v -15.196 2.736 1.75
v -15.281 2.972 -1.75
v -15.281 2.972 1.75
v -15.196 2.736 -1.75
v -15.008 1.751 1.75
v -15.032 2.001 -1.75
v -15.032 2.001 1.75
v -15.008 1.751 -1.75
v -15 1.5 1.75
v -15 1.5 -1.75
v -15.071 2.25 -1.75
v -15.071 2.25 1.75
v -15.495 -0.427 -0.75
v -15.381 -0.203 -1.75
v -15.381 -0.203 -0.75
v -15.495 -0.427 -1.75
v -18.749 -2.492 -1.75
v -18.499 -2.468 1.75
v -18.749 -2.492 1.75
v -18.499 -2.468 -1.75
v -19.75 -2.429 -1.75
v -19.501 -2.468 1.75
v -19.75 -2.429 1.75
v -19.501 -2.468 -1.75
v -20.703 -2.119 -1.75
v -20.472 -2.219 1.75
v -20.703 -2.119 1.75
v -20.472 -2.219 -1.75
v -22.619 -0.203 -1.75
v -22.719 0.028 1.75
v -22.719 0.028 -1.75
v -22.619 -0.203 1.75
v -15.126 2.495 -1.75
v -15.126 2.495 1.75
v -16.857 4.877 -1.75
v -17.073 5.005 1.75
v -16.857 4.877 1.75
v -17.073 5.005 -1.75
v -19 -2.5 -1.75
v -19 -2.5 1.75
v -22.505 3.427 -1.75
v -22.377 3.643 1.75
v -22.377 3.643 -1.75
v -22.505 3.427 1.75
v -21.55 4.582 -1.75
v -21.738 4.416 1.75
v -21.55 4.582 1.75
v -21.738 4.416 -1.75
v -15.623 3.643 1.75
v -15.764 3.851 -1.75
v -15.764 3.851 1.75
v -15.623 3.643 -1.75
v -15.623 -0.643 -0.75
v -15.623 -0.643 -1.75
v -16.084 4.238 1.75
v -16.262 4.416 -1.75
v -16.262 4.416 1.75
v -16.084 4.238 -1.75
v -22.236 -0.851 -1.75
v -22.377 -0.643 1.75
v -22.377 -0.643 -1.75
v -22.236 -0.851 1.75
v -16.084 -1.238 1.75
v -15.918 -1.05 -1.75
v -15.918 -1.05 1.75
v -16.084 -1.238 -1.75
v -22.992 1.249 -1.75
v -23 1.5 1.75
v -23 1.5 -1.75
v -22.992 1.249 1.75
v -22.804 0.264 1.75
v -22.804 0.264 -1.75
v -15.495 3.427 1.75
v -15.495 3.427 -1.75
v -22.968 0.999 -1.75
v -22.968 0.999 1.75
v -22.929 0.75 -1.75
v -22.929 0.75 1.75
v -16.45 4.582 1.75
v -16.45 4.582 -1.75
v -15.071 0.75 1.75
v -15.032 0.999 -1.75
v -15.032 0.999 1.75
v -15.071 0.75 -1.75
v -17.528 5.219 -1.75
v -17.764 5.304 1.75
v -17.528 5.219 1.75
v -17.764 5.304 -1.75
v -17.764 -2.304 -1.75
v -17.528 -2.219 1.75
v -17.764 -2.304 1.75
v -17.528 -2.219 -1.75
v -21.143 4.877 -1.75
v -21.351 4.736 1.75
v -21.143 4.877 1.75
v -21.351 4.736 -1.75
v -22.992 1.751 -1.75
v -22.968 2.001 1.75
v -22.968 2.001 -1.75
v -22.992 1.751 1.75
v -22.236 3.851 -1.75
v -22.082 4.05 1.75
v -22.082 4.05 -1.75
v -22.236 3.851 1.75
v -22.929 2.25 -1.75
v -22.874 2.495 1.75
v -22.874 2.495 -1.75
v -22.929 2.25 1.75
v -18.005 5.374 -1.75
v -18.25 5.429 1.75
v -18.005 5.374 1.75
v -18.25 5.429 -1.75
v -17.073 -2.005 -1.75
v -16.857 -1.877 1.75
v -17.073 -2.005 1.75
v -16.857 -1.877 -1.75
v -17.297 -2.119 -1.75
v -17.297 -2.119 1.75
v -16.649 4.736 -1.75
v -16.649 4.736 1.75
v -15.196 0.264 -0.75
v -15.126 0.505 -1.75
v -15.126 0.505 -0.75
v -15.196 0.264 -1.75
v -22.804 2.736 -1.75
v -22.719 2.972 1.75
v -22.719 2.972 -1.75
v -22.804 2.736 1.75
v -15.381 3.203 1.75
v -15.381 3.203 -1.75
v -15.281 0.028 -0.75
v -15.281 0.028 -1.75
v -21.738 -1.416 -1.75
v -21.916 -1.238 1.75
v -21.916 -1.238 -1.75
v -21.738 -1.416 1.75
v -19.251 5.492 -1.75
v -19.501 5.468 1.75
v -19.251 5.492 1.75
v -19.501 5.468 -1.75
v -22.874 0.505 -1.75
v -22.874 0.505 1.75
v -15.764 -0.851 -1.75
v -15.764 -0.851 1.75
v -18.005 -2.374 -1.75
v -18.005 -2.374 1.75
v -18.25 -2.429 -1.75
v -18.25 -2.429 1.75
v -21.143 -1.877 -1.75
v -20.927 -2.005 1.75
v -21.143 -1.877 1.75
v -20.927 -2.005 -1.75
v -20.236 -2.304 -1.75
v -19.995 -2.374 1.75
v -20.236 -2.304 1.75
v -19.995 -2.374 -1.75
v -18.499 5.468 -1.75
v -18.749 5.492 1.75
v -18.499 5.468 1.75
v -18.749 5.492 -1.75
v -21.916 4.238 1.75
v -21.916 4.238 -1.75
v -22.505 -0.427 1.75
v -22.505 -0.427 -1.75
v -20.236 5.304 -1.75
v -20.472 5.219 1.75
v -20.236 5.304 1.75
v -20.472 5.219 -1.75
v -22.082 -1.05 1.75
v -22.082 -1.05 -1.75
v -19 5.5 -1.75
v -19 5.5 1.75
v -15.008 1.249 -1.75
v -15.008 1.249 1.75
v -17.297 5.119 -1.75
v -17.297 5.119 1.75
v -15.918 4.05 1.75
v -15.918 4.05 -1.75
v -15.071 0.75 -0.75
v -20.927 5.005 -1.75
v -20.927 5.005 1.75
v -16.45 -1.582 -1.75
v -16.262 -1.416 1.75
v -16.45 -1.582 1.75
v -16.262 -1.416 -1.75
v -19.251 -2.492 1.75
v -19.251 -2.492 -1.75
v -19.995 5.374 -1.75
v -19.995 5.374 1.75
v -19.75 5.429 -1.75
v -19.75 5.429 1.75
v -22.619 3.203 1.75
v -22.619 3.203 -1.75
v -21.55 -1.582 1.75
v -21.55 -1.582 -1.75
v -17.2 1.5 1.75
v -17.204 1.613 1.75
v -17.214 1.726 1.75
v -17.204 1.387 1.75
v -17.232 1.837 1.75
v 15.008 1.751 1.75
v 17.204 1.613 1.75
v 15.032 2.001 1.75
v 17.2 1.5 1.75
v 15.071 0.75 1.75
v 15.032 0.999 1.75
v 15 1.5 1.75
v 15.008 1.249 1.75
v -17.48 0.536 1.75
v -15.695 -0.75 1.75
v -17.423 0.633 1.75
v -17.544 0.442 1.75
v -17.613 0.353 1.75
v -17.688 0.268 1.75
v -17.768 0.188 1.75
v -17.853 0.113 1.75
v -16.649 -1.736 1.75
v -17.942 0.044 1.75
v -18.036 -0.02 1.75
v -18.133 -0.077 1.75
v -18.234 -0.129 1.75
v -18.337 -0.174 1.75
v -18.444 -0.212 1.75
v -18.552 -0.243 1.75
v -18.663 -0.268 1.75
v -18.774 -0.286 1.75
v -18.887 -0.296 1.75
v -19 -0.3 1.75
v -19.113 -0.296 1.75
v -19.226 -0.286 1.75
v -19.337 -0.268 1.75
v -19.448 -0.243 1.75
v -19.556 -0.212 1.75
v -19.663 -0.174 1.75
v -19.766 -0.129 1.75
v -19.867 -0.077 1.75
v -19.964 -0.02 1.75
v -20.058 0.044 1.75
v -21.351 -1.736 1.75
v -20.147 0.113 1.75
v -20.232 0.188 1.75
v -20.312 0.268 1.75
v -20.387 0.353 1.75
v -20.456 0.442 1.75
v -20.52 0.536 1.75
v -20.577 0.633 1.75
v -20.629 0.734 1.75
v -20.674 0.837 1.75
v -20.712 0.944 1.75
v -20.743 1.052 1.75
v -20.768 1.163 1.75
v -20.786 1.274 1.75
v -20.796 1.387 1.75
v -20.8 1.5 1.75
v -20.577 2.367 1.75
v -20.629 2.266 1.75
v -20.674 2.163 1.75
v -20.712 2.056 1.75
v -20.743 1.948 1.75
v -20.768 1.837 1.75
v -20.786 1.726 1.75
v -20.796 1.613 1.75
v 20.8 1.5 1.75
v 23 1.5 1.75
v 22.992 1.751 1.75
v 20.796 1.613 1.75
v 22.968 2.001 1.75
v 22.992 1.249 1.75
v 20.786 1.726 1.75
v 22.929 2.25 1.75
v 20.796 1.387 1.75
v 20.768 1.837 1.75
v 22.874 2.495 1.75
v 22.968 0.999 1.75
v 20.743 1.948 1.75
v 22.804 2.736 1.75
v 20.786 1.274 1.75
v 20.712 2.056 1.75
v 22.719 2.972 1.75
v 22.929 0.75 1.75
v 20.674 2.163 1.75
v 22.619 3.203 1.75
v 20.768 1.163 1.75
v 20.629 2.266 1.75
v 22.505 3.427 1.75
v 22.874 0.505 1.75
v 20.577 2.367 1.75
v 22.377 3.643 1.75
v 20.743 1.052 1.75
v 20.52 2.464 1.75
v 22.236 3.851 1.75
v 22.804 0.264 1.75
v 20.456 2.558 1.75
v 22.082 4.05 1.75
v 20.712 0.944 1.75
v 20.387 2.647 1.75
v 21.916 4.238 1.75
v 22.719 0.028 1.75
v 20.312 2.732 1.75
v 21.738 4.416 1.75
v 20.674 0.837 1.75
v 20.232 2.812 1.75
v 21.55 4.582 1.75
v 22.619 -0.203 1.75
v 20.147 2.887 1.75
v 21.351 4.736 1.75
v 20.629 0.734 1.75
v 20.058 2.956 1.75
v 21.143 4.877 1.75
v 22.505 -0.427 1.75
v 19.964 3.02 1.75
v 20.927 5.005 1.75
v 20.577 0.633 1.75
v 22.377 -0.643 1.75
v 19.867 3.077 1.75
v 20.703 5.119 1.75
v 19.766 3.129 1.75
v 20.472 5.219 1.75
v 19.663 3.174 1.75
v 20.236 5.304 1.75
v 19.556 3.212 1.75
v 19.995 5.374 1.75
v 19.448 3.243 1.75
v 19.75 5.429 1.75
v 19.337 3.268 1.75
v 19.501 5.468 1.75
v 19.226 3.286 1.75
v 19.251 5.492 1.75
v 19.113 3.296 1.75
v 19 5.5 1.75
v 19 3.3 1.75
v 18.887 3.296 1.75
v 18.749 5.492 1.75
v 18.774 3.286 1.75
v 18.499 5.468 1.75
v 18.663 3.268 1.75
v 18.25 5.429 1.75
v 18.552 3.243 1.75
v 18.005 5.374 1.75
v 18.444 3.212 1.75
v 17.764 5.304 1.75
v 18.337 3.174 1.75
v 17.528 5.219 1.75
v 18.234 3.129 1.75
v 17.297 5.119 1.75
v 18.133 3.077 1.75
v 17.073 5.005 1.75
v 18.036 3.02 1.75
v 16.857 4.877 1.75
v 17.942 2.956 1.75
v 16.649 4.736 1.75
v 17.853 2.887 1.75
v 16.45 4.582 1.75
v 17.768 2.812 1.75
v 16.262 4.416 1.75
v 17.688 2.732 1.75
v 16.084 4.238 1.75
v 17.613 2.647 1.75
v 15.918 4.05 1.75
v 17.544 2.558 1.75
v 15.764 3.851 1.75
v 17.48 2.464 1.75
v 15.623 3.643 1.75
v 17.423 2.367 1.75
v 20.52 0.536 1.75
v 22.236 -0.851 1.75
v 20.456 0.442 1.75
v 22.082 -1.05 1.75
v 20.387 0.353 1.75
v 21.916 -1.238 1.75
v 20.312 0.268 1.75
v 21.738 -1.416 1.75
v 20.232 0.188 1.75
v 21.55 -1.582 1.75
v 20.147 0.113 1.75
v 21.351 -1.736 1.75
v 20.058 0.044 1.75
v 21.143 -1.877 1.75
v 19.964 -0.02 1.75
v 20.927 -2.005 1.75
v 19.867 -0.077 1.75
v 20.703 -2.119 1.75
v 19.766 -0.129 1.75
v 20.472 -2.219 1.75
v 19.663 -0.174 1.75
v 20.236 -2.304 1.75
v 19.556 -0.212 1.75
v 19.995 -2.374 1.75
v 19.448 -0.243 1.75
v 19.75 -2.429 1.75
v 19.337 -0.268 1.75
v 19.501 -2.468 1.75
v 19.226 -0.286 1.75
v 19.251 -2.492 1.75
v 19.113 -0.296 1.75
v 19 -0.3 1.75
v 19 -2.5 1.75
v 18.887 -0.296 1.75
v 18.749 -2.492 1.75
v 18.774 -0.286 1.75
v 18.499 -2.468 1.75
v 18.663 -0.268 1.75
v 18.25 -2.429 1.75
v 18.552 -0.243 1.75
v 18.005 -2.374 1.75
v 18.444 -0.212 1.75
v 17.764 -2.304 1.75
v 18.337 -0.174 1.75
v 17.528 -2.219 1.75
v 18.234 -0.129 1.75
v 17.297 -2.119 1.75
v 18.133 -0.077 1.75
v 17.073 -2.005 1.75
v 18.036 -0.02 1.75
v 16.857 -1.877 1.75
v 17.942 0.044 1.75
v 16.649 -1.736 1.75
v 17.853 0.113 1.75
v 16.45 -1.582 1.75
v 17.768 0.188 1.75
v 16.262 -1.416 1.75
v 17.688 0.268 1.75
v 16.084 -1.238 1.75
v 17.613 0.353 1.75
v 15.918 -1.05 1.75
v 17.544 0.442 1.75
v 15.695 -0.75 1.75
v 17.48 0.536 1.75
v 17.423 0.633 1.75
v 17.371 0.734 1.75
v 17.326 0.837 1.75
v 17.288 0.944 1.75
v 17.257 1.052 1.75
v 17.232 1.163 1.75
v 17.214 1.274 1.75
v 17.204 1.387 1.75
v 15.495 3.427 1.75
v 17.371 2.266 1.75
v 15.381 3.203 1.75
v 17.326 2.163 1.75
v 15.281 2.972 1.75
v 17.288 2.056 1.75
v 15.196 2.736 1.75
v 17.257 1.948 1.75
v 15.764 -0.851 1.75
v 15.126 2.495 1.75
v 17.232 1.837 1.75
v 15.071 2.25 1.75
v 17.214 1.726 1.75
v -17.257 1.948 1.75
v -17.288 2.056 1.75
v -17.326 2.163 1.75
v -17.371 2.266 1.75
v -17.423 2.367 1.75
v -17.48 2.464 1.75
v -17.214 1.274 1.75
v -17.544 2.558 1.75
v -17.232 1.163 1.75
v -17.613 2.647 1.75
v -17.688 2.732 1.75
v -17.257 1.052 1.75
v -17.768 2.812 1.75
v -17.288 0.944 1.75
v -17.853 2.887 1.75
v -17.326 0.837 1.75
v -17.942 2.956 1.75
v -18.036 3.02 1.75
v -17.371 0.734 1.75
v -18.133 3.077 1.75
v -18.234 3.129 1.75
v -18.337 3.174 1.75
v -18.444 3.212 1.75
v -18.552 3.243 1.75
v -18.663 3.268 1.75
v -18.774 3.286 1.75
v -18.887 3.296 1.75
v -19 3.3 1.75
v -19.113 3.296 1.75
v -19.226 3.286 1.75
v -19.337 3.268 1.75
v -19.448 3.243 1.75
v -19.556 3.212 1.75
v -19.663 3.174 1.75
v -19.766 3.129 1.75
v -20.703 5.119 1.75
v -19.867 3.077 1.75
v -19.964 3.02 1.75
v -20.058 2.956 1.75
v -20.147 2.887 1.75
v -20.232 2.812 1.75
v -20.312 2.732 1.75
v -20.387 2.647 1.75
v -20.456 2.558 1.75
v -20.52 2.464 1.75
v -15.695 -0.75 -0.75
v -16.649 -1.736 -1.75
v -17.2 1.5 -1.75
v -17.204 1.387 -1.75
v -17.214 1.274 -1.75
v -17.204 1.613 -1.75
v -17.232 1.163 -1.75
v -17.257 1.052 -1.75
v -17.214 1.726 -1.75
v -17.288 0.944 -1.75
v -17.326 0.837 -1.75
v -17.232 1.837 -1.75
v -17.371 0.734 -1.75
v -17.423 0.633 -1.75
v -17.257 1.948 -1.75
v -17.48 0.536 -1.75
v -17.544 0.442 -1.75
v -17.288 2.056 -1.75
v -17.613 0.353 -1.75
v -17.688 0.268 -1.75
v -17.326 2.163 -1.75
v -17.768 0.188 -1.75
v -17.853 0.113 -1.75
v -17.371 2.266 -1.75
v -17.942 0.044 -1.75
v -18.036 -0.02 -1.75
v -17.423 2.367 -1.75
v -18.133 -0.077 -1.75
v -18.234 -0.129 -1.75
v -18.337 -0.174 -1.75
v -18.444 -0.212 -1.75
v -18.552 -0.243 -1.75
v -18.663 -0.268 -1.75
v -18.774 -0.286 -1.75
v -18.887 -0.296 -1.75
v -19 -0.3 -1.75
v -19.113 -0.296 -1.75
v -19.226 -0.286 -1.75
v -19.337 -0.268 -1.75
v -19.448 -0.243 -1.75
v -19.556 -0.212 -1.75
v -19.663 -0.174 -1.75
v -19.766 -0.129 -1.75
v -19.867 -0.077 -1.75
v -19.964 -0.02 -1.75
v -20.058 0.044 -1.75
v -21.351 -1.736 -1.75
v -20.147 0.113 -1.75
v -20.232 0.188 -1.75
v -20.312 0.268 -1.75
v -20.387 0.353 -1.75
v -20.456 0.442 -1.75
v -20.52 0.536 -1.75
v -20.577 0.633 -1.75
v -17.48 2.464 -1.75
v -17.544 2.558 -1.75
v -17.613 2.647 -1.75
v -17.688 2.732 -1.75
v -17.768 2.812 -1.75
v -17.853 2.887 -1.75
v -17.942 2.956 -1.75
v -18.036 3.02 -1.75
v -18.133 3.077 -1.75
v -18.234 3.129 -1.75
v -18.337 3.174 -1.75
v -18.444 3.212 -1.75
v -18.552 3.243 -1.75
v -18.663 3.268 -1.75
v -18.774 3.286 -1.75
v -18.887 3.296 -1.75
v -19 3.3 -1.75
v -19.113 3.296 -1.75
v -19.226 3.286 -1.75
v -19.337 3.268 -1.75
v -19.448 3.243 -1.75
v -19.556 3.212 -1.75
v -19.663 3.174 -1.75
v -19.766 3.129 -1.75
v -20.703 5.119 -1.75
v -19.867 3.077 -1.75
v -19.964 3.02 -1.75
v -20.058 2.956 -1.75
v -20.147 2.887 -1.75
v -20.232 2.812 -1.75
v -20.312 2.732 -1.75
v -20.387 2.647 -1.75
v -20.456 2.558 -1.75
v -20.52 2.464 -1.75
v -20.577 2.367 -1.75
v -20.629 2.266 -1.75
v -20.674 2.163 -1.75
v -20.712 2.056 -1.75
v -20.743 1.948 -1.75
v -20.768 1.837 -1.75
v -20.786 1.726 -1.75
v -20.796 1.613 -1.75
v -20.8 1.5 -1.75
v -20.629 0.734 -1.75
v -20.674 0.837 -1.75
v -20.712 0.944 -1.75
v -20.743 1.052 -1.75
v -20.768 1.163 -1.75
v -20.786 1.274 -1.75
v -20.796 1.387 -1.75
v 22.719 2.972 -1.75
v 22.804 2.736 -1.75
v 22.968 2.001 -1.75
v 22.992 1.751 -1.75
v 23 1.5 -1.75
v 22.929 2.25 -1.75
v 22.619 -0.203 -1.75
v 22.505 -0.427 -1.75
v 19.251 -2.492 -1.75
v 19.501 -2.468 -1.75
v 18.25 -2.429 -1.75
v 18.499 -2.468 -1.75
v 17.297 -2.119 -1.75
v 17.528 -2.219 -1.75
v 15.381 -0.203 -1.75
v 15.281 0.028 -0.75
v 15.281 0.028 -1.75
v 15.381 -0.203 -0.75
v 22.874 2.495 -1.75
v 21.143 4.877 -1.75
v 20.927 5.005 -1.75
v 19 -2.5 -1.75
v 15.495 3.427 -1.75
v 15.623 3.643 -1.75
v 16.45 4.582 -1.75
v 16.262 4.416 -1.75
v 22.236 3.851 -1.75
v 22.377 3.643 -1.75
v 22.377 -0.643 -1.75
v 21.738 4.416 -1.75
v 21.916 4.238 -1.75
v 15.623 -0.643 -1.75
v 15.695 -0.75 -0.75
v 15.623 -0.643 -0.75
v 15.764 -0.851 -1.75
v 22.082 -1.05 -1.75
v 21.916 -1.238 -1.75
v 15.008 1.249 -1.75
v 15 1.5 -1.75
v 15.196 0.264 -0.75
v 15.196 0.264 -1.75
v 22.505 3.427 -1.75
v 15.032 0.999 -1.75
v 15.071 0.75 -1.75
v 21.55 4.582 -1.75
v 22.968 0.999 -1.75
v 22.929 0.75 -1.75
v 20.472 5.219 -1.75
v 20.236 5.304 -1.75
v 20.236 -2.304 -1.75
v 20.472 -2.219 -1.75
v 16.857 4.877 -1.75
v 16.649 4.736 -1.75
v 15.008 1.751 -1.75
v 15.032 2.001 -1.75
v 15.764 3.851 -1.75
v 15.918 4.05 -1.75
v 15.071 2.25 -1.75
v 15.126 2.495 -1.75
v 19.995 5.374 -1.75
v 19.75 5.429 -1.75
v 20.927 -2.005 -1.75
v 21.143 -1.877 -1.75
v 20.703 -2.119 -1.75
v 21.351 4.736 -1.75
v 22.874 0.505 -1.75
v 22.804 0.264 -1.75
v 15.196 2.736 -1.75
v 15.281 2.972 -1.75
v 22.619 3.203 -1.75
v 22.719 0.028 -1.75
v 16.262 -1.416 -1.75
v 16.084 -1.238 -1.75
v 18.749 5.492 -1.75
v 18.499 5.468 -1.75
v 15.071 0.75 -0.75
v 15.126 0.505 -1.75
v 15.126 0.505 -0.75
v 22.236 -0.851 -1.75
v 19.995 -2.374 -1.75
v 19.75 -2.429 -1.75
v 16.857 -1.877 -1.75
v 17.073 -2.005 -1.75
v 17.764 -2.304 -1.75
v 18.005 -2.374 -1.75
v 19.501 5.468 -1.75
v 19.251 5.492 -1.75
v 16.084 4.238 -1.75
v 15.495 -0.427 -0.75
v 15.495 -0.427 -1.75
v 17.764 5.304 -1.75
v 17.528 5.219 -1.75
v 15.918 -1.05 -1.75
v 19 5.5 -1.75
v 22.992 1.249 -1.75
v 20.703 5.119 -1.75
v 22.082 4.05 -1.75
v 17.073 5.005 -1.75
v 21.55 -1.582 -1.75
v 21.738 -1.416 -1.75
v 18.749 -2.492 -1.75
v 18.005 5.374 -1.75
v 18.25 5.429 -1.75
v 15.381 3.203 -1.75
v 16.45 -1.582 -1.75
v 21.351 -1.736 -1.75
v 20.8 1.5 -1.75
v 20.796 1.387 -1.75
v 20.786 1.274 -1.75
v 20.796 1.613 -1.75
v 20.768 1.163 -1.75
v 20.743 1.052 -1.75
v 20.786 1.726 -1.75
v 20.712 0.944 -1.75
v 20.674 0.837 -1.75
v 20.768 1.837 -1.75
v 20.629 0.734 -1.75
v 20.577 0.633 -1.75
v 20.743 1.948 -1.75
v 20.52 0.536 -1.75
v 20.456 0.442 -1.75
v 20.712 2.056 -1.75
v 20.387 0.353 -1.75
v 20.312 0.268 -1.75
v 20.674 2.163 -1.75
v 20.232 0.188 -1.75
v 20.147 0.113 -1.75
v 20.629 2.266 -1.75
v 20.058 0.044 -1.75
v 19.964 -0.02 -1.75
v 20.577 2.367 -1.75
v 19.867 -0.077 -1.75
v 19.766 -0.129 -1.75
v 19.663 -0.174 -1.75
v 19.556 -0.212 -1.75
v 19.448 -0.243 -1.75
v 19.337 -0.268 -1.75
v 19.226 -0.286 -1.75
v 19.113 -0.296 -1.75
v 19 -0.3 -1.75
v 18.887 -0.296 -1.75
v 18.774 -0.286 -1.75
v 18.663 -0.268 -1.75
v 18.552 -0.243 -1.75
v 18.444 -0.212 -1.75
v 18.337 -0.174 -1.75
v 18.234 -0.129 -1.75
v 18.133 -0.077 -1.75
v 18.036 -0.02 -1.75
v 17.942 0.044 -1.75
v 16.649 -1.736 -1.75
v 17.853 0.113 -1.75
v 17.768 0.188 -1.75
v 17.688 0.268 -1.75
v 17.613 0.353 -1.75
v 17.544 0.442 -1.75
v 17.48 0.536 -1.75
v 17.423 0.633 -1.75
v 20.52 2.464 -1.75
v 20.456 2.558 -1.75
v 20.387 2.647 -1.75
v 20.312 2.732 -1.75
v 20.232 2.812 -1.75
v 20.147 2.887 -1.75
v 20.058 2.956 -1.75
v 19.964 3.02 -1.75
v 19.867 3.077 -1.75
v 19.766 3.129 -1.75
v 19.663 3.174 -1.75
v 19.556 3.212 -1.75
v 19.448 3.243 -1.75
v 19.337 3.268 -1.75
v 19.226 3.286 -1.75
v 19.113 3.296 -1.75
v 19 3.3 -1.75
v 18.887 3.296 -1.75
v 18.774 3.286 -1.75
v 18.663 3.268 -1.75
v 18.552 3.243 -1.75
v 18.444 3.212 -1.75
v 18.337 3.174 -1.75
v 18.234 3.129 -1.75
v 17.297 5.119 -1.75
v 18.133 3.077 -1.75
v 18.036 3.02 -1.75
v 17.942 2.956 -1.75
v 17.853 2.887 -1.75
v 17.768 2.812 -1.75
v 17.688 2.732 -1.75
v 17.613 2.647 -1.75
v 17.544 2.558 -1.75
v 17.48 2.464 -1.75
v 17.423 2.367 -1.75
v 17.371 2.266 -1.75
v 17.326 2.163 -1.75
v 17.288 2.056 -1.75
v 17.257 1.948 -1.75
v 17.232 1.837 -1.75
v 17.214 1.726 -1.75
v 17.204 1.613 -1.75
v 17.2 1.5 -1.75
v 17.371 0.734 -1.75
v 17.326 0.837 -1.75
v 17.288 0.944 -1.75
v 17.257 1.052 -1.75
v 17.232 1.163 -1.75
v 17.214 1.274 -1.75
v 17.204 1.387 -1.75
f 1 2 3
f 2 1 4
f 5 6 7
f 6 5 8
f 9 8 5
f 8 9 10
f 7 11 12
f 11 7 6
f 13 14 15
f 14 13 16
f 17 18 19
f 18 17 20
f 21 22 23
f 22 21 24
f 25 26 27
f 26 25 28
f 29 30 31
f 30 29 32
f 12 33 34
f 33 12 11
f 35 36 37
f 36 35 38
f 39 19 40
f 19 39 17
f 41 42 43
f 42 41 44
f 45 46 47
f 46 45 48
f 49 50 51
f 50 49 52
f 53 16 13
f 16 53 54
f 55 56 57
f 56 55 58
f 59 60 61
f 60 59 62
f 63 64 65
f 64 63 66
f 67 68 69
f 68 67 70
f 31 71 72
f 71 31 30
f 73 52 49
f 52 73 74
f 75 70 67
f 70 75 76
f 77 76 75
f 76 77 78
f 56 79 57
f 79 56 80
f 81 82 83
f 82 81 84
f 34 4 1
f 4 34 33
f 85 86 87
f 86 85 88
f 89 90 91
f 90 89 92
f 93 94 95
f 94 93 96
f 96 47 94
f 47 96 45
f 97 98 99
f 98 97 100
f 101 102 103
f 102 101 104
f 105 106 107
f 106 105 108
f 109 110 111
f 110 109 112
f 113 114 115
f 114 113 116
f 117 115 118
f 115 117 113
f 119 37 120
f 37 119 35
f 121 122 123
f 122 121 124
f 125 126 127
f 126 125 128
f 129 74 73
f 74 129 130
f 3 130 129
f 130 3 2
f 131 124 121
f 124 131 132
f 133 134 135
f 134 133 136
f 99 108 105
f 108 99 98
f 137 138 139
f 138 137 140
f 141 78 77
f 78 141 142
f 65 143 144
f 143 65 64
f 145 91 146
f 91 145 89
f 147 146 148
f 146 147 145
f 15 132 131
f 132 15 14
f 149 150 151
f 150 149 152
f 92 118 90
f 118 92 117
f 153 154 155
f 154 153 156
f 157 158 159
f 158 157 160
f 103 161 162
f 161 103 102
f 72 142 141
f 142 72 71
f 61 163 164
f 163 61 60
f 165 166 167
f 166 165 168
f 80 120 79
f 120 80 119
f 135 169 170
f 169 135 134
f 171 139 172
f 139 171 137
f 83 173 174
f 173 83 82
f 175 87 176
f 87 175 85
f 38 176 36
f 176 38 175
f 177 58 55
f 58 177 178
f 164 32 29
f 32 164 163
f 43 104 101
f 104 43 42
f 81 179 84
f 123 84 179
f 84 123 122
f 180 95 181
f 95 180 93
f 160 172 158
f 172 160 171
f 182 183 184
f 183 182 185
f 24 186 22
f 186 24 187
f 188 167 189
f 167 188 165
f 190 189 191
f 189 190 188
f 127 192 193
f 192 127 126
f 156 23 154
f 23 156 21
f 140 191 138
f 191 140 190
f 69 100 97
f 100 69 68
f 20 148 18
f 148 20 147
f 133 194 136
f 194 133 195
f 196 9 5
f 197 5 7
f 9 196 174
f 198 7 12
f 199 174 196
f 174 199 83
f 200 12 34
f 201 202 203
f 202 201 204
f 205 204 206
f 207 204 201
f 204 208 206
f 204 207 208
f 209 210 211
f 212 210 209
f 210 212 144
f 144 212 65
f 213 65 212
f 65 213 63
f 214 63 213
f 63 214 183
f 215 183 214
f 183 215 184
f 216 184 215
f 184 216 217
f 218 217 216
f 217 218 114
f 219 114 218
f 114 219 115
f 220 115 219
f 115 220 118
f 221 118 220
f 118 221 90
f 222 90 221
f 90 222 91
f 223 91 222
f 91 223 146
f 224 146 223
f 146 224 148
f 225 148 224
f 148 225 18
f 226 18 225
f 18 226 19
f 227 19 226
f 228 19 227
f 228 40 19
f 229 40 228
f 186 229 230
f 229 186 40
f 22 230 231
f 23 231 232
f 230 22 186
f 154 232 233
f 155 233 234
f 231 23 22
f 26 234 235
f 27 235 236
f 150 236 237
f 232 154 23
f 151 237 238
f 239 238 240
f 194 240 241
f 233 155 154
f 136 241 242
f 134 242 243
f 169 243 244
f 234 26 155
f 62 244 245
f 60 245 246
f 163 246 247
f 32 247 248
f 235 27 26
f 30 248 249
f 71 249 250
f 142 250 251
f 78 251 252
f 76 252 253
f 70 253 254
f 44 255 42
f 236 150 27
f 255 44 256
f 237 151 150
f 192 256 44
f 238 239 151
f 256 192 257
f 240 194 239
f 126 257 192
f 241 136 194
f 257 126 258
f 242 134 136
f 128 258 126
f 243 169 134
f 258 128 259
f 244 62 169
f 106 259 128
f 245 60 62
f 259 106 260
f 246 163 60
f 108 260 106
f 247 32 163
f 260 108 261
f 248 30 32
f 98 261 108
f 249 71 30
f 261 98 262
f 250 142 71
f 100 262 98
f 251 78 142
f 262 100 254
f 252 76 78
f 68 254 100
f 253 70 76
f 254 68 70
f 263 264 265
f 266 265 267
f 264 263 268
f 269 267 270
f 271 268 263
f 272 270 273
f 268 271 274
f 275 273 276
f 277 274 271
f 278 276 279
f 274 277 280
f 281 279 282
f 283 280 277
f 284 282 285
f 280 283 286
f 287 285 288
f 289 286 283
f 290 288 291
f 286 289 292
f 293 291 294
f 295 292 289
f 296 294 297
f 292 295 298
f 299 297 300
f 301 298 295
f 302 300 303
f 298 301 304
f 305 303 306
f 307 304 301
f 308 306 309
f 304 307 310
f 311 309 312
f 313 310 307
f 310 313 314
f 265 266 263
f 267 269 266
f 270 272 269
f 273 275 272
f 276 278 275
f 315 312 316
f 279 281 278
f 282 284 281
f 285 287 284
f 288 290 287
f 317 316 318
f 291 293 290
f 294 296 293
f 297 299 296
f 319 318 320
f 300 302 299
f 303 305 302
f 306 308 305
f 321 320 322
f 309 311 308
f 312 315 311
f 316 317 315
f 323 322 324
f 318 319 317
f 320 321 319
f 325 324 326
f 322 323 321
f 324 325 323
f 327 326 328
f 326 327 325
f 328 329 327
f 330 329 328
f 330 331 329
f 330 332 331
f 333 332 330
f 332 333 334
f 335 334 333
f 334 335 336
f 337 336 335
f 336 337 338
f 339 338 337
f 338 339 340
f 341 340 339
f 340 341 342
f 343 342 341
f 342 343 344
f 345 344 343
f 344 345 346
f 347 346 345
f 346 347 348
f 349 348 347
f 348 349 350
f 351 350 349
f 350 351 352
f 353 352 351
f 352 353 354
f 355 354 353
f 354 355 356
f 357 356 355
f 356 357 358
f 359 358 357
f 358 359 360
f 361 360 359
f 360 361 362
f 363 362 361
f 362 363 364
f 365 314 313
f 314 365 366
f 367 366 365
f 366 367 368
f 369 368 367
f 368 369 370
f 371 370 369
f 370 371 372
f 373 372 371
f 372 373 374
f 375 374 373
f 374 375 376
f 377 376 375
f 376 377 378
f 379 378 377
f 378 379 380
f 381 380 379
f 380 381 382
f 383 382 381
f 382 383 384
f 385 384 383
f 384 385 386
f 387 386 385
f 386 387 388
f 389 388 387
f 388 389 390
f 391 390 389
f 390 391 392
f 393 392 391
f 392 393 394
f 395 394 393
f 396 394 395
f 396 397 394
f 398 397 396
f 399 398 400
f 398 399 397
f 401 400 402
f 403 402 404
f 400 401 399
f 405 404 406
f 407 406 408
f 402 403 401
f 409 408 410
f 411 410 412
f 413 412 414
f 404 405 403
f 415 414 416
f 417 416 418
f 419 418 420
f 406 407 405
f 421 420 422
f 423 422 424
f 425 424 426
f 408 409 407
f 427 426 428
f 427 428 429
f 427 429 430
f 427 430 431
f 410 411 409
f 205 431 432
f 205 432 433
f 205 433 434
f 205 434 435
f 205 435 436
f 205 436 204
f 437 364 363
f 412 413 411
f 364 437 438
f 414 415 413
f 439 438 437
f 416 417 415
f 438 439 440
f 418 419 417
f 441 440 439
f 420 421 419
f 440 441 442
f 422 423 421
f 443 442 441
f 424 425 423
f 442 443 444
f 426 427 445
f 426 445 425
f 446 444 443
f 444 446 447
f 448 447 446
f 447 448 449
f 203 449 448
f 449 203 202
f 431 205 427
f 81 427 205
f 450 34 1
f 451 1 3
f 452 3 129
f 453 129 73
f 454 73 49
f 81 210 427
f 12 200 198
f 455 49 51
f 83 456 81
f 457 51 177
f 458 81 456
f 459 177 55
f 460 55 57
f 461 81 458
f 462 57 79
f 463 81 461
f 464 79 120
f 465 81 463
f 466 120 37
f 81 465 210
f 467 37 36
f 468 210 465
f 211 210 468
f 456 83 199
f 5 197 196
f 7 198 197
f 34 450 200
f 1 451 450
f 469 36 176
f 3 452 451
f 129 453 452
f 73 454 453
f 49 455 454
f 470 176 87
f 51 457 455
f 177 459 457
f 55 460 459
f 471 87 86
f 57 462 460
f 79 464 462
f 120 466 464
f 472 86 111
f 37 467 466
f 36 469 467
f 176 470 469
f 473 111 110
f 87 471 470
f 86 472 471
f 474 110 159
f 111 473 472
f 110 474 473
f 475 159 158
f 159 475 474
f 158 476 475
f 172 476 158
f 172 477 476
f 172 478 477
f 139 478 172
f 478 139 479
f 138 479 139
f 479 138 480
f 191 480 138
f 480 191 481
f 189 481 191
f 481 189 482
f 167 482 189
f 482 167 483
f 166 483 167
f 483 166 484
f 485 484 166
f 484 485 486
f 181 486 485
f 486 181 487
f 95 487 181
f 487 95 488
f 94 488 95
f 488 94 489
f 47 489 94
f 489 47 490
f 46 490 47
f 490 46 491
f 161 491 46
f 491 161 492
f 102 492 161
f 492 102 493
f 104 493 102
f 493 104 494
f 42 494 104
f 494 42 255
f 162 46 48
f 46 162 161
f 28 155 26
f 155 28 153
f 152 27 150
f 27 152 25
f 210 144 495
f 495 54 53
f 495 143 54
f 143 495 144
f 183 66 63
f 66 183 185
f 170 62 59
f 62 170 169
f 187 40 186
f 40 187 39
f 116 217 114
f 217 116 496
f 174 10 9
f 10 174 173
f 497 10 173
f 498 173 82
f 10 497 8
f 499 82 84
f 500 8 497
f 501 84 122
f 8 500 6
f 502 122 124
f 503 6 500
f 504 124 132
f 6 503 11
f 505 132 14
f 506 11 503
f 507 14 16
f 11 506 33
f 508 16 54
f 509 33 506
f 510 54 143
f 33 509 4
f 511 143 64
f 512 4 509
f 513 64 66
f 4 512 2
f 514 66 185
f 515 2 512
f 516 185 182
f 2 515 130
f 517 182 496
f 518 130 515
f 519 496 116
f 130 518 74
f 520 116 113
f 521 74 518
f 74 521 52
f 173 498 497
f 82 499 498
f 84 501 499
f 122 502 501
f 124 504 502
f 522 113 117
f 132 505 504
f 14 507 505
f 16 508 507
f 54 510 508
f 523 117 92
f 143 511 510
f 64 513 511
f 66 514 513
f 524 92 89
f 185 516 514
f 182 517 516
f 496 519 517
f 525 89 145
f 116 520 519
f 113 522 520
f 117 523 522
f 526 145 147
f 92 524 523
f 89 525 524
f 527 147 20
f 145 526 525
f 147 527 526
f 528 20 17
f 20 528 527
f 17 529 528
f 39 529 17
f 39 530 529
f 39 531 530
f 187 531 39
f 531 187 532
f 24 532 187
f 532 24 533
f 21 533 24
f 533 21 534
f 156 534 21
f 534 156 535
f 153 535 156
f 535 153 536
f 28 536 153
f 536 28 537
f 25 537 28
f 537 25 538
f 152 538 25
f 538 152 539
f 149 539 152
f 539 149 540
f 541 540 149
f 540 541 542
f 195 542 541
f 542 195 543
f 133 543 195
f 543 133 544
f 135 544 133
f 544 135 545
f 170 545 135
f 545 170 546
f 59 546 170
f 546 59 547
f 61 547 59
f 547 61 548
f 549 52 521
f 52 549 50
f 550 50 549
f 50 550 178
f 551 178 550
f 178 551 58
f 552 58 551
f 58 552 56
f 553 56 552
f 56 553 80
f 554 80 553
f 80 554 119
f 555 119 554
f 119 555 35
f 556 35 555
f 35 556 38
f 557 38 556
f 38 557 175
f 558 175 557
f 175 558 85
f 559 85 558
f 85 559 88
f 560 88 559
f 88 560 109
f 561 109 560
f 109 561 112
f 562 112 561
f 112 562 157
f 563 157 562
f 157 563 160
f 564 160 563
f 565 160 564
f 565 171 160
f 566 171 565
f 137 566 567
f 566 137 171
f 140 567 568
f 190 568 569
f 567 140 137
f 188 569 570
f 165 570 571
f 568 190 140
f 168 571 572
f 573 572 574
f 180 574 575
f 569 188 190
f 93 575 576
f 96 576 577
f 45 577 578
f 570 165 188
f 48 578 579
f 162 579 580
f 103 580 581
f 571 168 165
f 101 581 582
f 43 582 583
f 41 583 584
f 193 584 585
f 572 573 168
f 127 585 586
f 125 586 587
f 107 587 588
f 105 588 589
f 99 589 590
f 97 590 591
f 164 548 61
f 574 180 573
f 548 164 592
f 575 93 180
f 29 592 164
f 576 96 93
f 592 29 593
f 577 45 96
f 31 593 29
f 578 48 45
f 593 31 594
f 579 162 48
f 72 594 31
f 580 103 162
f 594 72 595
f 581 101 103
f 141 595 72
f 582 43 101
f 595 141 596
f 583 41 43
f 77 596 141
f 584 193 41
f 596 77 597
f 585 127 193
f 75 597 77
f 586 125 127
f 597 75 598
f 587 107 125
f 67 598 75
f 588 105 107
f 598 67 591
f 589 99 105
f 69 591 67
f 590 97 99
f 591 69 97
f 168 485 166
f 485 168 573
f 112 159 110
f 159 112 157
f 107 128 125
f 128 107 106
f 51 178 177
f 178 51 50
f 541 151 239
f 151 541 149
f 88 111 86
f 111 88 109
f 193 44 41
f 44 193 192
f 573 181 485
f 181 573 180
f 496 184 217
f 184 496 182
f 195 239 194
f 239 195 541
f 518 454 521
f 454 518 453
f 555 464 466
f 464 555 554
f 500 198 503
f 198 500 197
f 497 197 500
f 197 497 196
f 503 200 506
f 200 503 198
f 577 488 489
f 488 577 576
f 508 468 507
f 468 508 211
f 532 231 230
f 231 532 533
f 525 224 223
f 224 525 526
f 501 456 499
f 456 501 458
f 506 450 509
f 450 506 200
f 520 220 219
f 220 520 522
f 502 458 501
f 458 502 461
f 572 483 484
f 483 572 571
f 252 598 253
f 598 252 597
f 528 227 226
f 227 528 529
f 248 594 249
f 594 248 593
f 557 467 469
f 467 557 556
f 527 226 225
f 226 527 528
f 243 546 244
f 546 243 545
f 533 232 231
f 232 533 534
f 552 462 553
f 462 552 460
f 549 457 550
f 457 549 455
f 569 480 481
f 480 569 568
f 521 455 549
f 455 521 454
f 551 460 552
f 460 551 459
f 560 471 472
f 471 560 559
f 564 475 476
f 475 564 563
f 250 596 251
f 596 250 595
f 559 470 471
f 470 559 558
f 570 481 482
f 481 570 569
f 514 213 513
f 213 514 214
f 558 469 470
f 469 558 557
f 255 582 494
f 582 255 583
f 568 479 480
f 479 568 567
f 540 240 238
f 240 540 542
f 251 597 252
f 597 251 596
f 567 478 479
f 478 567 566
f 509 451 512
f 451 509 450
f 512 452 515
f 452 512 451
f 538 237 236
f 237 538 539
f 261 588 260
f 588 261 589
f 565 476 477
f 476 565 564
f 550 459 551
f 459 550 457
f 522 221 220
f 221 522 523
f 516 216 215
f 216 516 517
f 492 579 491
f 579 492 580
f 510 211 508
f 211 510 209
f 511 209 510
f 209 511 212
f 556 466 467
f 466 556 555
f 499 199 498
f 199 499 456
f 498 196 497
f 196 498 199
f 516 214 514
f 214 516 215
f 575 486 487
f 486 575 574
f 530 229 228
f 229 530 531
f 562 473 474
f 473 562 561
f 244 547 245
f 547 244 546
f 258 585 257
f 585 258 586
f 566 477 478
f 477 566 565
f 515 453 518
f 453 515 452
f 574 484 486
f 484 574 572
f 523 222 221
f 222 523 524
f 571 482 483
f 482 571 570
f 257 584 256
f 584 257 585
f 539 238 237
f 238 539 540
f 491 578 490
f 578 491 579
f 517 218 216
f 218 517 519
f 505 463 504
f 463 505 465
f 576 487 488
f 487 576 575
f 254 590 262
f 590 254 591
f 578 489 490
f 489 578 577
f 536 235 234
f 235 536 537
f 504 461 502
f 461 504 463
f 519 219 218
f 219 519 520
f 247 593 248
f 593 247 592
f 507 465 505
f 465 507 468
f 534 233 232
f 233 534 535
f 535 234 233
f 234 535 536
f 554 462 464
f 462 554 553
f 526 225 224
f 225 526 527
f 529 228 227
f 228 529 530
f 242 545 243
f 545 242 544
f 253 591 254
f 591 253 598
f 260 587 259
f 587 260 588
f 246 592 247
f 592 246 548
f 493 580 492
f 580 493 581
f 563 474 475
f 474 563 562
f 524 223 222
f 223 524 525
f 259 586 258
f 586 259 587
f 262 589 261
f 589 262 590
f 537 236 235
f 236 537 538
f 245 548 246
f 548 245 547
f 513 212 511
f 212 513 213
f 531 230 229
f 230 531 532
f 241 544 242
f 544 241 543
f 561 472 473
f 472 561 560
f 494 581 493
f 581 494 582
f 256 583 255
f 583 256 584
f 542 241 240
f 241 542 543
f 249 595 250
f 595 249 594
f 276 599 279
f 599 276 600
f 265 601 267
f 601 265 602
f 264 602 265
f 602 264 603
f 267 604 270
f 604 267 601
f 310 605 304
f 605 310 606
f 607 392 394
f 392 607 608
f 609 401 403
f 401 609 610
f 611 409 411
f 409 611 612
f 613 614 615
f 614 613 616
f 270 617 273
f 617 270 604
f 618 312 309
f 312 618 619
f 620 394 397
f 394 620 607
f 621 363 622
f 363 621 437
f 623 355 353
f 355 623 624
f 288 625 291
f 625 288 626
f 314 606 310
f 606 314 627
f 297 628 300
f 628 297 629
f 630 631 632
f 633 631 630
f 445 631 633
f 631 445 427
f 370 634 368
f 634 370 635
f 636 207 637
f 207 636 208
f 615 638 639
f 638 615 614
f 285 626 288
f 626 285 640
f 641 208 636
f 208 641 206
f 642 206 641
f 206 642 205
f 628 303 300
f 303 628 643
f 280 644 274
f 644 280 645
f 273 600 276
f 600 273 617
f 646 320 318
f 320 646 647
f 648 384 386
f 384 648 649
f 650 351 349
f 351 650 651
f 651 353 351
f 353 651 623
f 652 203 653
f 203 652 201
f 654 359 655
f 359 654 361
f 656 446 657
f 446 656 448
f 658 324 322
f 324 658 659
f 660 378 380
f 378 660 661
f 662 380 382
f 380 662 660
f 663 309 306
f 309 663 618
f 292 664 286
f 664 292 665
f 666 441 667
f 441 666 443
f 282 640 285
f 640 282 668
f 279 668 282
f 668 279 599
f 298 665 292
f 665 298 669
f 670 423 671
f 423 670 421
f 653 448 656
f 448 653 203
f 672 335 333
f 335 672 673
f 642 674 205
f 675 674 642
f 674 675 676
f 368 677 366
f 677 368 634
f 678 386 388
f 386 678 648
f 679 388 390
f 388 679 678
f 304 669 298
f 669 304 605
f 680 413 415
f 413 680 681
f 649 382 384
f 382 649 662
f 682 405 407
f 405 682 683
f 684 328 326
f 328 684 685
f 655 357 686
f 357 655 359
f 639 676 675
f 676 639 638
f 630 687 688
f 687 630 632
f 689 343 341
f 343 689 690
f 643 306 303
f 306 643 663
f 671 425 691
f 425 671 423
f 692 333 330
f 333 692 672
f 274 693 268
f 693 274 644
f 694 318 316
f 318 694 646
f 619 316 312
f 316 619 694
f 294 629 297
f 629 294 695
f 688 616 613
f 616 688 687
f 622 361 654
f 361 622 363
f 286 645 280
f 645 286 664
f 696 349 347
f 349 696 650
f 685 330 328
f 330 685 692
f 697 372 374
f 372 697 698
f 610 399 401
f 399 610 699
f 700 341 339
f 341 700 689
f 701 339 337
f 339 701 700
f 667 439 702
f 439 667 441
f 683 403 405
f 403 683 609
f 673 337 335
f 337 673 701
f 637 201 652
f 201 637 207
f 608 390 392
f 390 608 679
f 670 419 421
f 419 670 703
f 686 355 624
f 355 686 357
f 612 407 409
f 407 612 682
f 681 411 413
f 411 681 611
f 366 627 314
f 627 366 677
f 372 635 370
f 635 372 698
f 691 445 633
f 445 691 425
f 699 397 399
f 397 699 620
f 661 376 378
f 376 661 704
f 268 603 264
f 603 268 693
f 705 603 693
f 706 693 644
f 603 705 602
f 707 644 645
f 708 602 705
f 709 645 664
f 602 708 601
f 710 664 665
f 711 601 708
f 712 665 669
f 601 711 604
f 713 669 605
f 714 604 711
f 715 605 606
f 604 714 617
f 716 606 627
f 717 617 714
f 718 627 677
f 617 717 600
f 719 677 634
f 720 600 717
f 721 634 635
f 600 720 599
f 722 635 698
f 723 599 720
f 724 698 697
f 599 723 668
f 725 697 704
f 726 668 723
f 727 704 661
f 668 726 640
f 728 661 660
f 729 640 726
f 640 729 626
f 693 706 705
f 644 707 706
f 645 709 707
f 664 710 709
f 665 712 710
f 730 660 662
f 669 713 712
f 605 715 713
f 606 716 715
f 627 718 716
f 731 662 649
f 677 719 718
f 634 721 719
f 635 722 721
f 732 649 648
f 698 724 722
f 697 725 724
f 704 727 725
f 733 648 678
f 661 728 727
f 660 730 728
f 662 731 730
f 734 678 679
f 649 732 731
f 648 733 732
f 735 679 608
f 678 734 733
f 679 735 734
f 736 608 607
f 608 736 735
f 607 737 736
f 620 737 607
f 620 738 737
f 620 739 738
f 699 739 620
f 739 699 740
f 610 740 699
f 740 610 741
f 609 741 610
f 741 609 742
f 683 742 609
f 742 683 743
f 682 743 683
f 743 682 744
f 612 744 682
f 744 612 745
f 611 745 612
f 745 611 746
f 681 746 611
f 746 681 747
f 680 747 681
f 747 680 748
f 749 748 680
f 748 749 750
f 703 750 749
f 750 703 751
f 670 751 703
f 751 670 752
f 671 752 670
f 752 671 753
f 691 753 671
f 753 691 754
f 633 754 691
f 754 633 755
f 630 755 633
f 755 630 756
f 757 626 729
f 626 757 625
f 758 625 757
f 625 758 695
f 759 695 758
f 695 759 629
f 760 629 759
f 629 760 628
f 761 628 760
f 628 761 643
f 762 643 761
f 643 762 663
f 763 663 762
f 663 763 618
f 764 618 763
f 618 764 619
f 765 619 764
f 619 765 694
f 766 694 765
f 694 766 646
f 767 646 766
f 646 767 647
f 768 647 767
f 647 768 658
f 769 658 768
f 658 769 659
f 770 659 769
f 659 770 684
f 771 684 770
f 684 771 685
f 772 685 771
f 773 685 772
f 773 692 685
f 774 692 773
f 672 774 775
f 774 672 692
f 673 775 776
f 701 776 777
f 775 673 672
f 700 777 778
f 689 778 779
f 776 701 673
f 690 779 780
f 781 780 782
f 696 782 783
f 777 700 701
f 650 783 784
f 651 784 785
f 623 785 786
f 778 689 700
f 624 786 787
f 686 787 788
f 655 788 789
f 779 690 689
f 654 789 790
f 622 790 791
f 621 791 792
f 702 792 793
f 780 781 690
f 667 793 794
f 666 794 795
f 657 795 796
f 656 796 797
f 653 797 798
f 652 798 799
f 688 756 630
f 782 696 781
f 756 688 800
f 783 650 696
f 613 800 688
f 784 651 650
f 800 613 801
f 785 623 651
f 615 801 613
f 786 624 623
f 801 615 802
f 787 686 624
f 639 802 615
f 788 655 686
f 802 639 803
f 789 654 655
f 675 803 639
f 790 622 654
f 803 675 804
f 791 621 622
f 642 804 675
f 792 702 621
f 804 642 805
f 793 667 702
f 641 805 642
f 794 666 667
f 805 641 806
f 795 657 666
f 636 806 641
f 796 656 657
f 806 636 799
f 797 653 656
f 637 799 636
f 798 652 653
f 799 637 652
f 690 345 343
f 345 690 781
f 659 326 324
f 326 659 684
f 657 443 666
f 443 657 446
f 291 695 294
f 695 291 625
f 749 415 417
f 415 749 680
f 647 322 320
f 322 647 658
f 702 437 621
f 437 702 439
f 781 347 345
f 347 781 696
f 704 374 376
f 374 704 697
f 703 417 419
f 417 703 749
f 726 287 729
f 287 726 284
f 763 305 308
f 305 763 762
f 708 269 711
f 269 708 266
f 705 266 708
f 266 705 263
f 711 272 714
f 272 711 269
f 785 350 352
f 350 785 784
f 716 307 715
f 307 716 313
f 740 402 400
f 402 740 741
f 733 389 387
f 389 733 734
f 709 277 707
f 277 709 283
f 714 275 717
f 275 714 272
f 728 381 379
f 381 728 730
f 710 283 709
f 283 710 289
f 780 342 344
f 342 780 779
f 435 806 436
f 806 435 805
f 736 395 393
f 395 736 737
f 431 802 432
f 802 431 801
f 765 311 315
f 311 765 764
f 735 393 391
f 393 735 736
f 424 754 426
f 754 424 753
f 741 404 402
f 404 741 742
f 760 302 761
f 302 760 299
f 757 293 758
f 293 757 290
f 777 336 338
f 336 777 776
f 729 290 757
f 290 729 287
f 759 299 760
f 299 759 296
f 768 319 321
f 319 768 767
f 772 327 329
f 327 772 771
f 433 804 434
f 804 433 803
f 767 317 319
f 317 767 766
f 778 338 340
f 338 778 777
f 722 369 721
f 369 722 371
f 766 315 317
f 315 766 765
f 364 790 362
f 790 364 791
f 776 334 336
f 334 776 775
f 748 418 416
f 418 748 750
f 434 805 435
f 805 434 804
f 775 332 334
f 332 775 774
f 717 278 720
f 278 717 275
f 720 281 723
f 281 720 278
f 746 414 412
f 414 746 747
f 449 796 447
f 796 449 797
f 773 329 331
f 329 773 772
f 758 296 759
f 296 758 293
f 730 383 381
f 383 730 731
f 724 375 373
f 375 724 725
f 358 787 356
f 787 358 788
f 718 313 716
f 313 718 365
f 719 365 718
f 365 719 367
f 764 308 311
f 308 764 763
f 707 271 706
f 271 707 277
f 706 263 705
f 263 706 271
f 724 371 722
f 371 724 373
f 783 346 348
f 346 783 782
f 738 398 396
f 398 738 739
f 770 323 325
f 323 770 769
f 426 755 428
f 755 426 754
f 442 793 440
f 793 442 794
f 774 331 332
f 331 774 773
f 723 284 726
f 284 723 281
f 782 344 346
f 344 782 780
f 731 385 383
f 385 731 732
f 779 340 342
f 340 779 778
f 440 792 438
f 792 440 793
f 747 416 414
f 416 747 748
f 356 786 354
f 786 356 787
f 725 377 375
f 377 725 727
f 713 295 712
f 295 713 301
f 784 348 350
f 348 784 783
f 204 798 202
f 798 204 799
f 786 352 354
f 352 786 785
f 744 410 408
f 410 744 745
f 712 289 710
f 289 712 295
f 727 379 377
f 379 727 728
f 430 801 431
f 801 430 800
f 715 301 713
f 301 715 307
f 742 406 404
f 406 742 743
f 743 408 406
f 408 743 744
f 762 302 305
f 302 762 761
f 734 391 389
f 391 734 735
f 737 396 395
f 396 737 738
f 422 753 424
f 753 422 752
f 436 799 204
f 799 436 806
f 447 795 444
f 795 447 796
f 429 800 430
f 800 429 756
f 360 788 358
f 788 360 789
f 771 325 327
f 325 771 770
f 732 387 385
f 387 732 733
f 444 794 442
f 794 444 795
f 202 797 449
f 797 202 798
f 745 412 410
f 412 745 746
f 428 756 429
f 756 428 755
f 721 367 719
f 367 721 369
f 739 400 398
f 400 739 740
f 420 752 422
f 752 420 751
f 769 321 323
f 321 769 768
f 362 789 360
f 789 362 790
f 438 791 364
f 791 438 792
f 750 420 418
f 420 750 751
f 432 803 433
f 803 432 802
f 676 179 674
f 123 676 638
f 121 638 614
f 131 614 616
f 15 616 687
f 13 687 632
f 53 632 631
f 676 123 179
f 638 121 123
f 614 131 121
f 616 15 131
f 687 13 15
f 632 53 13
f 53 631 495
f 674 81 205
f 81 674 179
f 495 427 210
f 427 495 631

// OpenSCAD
module ringBus() {
    difference() {
        cylinder(h=3.5, r=4, center=true, $fn=100);
        cylinder(h=6, r=1.8, center=true, $fn=100);
    }
}

translate([0, 0, 0.5]) color("red")cube([34.5, 1.5, 2.5], center=true);
translate([-38/2, 1.5, 0]) ringBus();
translate([ 38/2, 1.5, 0]) ringBus();
